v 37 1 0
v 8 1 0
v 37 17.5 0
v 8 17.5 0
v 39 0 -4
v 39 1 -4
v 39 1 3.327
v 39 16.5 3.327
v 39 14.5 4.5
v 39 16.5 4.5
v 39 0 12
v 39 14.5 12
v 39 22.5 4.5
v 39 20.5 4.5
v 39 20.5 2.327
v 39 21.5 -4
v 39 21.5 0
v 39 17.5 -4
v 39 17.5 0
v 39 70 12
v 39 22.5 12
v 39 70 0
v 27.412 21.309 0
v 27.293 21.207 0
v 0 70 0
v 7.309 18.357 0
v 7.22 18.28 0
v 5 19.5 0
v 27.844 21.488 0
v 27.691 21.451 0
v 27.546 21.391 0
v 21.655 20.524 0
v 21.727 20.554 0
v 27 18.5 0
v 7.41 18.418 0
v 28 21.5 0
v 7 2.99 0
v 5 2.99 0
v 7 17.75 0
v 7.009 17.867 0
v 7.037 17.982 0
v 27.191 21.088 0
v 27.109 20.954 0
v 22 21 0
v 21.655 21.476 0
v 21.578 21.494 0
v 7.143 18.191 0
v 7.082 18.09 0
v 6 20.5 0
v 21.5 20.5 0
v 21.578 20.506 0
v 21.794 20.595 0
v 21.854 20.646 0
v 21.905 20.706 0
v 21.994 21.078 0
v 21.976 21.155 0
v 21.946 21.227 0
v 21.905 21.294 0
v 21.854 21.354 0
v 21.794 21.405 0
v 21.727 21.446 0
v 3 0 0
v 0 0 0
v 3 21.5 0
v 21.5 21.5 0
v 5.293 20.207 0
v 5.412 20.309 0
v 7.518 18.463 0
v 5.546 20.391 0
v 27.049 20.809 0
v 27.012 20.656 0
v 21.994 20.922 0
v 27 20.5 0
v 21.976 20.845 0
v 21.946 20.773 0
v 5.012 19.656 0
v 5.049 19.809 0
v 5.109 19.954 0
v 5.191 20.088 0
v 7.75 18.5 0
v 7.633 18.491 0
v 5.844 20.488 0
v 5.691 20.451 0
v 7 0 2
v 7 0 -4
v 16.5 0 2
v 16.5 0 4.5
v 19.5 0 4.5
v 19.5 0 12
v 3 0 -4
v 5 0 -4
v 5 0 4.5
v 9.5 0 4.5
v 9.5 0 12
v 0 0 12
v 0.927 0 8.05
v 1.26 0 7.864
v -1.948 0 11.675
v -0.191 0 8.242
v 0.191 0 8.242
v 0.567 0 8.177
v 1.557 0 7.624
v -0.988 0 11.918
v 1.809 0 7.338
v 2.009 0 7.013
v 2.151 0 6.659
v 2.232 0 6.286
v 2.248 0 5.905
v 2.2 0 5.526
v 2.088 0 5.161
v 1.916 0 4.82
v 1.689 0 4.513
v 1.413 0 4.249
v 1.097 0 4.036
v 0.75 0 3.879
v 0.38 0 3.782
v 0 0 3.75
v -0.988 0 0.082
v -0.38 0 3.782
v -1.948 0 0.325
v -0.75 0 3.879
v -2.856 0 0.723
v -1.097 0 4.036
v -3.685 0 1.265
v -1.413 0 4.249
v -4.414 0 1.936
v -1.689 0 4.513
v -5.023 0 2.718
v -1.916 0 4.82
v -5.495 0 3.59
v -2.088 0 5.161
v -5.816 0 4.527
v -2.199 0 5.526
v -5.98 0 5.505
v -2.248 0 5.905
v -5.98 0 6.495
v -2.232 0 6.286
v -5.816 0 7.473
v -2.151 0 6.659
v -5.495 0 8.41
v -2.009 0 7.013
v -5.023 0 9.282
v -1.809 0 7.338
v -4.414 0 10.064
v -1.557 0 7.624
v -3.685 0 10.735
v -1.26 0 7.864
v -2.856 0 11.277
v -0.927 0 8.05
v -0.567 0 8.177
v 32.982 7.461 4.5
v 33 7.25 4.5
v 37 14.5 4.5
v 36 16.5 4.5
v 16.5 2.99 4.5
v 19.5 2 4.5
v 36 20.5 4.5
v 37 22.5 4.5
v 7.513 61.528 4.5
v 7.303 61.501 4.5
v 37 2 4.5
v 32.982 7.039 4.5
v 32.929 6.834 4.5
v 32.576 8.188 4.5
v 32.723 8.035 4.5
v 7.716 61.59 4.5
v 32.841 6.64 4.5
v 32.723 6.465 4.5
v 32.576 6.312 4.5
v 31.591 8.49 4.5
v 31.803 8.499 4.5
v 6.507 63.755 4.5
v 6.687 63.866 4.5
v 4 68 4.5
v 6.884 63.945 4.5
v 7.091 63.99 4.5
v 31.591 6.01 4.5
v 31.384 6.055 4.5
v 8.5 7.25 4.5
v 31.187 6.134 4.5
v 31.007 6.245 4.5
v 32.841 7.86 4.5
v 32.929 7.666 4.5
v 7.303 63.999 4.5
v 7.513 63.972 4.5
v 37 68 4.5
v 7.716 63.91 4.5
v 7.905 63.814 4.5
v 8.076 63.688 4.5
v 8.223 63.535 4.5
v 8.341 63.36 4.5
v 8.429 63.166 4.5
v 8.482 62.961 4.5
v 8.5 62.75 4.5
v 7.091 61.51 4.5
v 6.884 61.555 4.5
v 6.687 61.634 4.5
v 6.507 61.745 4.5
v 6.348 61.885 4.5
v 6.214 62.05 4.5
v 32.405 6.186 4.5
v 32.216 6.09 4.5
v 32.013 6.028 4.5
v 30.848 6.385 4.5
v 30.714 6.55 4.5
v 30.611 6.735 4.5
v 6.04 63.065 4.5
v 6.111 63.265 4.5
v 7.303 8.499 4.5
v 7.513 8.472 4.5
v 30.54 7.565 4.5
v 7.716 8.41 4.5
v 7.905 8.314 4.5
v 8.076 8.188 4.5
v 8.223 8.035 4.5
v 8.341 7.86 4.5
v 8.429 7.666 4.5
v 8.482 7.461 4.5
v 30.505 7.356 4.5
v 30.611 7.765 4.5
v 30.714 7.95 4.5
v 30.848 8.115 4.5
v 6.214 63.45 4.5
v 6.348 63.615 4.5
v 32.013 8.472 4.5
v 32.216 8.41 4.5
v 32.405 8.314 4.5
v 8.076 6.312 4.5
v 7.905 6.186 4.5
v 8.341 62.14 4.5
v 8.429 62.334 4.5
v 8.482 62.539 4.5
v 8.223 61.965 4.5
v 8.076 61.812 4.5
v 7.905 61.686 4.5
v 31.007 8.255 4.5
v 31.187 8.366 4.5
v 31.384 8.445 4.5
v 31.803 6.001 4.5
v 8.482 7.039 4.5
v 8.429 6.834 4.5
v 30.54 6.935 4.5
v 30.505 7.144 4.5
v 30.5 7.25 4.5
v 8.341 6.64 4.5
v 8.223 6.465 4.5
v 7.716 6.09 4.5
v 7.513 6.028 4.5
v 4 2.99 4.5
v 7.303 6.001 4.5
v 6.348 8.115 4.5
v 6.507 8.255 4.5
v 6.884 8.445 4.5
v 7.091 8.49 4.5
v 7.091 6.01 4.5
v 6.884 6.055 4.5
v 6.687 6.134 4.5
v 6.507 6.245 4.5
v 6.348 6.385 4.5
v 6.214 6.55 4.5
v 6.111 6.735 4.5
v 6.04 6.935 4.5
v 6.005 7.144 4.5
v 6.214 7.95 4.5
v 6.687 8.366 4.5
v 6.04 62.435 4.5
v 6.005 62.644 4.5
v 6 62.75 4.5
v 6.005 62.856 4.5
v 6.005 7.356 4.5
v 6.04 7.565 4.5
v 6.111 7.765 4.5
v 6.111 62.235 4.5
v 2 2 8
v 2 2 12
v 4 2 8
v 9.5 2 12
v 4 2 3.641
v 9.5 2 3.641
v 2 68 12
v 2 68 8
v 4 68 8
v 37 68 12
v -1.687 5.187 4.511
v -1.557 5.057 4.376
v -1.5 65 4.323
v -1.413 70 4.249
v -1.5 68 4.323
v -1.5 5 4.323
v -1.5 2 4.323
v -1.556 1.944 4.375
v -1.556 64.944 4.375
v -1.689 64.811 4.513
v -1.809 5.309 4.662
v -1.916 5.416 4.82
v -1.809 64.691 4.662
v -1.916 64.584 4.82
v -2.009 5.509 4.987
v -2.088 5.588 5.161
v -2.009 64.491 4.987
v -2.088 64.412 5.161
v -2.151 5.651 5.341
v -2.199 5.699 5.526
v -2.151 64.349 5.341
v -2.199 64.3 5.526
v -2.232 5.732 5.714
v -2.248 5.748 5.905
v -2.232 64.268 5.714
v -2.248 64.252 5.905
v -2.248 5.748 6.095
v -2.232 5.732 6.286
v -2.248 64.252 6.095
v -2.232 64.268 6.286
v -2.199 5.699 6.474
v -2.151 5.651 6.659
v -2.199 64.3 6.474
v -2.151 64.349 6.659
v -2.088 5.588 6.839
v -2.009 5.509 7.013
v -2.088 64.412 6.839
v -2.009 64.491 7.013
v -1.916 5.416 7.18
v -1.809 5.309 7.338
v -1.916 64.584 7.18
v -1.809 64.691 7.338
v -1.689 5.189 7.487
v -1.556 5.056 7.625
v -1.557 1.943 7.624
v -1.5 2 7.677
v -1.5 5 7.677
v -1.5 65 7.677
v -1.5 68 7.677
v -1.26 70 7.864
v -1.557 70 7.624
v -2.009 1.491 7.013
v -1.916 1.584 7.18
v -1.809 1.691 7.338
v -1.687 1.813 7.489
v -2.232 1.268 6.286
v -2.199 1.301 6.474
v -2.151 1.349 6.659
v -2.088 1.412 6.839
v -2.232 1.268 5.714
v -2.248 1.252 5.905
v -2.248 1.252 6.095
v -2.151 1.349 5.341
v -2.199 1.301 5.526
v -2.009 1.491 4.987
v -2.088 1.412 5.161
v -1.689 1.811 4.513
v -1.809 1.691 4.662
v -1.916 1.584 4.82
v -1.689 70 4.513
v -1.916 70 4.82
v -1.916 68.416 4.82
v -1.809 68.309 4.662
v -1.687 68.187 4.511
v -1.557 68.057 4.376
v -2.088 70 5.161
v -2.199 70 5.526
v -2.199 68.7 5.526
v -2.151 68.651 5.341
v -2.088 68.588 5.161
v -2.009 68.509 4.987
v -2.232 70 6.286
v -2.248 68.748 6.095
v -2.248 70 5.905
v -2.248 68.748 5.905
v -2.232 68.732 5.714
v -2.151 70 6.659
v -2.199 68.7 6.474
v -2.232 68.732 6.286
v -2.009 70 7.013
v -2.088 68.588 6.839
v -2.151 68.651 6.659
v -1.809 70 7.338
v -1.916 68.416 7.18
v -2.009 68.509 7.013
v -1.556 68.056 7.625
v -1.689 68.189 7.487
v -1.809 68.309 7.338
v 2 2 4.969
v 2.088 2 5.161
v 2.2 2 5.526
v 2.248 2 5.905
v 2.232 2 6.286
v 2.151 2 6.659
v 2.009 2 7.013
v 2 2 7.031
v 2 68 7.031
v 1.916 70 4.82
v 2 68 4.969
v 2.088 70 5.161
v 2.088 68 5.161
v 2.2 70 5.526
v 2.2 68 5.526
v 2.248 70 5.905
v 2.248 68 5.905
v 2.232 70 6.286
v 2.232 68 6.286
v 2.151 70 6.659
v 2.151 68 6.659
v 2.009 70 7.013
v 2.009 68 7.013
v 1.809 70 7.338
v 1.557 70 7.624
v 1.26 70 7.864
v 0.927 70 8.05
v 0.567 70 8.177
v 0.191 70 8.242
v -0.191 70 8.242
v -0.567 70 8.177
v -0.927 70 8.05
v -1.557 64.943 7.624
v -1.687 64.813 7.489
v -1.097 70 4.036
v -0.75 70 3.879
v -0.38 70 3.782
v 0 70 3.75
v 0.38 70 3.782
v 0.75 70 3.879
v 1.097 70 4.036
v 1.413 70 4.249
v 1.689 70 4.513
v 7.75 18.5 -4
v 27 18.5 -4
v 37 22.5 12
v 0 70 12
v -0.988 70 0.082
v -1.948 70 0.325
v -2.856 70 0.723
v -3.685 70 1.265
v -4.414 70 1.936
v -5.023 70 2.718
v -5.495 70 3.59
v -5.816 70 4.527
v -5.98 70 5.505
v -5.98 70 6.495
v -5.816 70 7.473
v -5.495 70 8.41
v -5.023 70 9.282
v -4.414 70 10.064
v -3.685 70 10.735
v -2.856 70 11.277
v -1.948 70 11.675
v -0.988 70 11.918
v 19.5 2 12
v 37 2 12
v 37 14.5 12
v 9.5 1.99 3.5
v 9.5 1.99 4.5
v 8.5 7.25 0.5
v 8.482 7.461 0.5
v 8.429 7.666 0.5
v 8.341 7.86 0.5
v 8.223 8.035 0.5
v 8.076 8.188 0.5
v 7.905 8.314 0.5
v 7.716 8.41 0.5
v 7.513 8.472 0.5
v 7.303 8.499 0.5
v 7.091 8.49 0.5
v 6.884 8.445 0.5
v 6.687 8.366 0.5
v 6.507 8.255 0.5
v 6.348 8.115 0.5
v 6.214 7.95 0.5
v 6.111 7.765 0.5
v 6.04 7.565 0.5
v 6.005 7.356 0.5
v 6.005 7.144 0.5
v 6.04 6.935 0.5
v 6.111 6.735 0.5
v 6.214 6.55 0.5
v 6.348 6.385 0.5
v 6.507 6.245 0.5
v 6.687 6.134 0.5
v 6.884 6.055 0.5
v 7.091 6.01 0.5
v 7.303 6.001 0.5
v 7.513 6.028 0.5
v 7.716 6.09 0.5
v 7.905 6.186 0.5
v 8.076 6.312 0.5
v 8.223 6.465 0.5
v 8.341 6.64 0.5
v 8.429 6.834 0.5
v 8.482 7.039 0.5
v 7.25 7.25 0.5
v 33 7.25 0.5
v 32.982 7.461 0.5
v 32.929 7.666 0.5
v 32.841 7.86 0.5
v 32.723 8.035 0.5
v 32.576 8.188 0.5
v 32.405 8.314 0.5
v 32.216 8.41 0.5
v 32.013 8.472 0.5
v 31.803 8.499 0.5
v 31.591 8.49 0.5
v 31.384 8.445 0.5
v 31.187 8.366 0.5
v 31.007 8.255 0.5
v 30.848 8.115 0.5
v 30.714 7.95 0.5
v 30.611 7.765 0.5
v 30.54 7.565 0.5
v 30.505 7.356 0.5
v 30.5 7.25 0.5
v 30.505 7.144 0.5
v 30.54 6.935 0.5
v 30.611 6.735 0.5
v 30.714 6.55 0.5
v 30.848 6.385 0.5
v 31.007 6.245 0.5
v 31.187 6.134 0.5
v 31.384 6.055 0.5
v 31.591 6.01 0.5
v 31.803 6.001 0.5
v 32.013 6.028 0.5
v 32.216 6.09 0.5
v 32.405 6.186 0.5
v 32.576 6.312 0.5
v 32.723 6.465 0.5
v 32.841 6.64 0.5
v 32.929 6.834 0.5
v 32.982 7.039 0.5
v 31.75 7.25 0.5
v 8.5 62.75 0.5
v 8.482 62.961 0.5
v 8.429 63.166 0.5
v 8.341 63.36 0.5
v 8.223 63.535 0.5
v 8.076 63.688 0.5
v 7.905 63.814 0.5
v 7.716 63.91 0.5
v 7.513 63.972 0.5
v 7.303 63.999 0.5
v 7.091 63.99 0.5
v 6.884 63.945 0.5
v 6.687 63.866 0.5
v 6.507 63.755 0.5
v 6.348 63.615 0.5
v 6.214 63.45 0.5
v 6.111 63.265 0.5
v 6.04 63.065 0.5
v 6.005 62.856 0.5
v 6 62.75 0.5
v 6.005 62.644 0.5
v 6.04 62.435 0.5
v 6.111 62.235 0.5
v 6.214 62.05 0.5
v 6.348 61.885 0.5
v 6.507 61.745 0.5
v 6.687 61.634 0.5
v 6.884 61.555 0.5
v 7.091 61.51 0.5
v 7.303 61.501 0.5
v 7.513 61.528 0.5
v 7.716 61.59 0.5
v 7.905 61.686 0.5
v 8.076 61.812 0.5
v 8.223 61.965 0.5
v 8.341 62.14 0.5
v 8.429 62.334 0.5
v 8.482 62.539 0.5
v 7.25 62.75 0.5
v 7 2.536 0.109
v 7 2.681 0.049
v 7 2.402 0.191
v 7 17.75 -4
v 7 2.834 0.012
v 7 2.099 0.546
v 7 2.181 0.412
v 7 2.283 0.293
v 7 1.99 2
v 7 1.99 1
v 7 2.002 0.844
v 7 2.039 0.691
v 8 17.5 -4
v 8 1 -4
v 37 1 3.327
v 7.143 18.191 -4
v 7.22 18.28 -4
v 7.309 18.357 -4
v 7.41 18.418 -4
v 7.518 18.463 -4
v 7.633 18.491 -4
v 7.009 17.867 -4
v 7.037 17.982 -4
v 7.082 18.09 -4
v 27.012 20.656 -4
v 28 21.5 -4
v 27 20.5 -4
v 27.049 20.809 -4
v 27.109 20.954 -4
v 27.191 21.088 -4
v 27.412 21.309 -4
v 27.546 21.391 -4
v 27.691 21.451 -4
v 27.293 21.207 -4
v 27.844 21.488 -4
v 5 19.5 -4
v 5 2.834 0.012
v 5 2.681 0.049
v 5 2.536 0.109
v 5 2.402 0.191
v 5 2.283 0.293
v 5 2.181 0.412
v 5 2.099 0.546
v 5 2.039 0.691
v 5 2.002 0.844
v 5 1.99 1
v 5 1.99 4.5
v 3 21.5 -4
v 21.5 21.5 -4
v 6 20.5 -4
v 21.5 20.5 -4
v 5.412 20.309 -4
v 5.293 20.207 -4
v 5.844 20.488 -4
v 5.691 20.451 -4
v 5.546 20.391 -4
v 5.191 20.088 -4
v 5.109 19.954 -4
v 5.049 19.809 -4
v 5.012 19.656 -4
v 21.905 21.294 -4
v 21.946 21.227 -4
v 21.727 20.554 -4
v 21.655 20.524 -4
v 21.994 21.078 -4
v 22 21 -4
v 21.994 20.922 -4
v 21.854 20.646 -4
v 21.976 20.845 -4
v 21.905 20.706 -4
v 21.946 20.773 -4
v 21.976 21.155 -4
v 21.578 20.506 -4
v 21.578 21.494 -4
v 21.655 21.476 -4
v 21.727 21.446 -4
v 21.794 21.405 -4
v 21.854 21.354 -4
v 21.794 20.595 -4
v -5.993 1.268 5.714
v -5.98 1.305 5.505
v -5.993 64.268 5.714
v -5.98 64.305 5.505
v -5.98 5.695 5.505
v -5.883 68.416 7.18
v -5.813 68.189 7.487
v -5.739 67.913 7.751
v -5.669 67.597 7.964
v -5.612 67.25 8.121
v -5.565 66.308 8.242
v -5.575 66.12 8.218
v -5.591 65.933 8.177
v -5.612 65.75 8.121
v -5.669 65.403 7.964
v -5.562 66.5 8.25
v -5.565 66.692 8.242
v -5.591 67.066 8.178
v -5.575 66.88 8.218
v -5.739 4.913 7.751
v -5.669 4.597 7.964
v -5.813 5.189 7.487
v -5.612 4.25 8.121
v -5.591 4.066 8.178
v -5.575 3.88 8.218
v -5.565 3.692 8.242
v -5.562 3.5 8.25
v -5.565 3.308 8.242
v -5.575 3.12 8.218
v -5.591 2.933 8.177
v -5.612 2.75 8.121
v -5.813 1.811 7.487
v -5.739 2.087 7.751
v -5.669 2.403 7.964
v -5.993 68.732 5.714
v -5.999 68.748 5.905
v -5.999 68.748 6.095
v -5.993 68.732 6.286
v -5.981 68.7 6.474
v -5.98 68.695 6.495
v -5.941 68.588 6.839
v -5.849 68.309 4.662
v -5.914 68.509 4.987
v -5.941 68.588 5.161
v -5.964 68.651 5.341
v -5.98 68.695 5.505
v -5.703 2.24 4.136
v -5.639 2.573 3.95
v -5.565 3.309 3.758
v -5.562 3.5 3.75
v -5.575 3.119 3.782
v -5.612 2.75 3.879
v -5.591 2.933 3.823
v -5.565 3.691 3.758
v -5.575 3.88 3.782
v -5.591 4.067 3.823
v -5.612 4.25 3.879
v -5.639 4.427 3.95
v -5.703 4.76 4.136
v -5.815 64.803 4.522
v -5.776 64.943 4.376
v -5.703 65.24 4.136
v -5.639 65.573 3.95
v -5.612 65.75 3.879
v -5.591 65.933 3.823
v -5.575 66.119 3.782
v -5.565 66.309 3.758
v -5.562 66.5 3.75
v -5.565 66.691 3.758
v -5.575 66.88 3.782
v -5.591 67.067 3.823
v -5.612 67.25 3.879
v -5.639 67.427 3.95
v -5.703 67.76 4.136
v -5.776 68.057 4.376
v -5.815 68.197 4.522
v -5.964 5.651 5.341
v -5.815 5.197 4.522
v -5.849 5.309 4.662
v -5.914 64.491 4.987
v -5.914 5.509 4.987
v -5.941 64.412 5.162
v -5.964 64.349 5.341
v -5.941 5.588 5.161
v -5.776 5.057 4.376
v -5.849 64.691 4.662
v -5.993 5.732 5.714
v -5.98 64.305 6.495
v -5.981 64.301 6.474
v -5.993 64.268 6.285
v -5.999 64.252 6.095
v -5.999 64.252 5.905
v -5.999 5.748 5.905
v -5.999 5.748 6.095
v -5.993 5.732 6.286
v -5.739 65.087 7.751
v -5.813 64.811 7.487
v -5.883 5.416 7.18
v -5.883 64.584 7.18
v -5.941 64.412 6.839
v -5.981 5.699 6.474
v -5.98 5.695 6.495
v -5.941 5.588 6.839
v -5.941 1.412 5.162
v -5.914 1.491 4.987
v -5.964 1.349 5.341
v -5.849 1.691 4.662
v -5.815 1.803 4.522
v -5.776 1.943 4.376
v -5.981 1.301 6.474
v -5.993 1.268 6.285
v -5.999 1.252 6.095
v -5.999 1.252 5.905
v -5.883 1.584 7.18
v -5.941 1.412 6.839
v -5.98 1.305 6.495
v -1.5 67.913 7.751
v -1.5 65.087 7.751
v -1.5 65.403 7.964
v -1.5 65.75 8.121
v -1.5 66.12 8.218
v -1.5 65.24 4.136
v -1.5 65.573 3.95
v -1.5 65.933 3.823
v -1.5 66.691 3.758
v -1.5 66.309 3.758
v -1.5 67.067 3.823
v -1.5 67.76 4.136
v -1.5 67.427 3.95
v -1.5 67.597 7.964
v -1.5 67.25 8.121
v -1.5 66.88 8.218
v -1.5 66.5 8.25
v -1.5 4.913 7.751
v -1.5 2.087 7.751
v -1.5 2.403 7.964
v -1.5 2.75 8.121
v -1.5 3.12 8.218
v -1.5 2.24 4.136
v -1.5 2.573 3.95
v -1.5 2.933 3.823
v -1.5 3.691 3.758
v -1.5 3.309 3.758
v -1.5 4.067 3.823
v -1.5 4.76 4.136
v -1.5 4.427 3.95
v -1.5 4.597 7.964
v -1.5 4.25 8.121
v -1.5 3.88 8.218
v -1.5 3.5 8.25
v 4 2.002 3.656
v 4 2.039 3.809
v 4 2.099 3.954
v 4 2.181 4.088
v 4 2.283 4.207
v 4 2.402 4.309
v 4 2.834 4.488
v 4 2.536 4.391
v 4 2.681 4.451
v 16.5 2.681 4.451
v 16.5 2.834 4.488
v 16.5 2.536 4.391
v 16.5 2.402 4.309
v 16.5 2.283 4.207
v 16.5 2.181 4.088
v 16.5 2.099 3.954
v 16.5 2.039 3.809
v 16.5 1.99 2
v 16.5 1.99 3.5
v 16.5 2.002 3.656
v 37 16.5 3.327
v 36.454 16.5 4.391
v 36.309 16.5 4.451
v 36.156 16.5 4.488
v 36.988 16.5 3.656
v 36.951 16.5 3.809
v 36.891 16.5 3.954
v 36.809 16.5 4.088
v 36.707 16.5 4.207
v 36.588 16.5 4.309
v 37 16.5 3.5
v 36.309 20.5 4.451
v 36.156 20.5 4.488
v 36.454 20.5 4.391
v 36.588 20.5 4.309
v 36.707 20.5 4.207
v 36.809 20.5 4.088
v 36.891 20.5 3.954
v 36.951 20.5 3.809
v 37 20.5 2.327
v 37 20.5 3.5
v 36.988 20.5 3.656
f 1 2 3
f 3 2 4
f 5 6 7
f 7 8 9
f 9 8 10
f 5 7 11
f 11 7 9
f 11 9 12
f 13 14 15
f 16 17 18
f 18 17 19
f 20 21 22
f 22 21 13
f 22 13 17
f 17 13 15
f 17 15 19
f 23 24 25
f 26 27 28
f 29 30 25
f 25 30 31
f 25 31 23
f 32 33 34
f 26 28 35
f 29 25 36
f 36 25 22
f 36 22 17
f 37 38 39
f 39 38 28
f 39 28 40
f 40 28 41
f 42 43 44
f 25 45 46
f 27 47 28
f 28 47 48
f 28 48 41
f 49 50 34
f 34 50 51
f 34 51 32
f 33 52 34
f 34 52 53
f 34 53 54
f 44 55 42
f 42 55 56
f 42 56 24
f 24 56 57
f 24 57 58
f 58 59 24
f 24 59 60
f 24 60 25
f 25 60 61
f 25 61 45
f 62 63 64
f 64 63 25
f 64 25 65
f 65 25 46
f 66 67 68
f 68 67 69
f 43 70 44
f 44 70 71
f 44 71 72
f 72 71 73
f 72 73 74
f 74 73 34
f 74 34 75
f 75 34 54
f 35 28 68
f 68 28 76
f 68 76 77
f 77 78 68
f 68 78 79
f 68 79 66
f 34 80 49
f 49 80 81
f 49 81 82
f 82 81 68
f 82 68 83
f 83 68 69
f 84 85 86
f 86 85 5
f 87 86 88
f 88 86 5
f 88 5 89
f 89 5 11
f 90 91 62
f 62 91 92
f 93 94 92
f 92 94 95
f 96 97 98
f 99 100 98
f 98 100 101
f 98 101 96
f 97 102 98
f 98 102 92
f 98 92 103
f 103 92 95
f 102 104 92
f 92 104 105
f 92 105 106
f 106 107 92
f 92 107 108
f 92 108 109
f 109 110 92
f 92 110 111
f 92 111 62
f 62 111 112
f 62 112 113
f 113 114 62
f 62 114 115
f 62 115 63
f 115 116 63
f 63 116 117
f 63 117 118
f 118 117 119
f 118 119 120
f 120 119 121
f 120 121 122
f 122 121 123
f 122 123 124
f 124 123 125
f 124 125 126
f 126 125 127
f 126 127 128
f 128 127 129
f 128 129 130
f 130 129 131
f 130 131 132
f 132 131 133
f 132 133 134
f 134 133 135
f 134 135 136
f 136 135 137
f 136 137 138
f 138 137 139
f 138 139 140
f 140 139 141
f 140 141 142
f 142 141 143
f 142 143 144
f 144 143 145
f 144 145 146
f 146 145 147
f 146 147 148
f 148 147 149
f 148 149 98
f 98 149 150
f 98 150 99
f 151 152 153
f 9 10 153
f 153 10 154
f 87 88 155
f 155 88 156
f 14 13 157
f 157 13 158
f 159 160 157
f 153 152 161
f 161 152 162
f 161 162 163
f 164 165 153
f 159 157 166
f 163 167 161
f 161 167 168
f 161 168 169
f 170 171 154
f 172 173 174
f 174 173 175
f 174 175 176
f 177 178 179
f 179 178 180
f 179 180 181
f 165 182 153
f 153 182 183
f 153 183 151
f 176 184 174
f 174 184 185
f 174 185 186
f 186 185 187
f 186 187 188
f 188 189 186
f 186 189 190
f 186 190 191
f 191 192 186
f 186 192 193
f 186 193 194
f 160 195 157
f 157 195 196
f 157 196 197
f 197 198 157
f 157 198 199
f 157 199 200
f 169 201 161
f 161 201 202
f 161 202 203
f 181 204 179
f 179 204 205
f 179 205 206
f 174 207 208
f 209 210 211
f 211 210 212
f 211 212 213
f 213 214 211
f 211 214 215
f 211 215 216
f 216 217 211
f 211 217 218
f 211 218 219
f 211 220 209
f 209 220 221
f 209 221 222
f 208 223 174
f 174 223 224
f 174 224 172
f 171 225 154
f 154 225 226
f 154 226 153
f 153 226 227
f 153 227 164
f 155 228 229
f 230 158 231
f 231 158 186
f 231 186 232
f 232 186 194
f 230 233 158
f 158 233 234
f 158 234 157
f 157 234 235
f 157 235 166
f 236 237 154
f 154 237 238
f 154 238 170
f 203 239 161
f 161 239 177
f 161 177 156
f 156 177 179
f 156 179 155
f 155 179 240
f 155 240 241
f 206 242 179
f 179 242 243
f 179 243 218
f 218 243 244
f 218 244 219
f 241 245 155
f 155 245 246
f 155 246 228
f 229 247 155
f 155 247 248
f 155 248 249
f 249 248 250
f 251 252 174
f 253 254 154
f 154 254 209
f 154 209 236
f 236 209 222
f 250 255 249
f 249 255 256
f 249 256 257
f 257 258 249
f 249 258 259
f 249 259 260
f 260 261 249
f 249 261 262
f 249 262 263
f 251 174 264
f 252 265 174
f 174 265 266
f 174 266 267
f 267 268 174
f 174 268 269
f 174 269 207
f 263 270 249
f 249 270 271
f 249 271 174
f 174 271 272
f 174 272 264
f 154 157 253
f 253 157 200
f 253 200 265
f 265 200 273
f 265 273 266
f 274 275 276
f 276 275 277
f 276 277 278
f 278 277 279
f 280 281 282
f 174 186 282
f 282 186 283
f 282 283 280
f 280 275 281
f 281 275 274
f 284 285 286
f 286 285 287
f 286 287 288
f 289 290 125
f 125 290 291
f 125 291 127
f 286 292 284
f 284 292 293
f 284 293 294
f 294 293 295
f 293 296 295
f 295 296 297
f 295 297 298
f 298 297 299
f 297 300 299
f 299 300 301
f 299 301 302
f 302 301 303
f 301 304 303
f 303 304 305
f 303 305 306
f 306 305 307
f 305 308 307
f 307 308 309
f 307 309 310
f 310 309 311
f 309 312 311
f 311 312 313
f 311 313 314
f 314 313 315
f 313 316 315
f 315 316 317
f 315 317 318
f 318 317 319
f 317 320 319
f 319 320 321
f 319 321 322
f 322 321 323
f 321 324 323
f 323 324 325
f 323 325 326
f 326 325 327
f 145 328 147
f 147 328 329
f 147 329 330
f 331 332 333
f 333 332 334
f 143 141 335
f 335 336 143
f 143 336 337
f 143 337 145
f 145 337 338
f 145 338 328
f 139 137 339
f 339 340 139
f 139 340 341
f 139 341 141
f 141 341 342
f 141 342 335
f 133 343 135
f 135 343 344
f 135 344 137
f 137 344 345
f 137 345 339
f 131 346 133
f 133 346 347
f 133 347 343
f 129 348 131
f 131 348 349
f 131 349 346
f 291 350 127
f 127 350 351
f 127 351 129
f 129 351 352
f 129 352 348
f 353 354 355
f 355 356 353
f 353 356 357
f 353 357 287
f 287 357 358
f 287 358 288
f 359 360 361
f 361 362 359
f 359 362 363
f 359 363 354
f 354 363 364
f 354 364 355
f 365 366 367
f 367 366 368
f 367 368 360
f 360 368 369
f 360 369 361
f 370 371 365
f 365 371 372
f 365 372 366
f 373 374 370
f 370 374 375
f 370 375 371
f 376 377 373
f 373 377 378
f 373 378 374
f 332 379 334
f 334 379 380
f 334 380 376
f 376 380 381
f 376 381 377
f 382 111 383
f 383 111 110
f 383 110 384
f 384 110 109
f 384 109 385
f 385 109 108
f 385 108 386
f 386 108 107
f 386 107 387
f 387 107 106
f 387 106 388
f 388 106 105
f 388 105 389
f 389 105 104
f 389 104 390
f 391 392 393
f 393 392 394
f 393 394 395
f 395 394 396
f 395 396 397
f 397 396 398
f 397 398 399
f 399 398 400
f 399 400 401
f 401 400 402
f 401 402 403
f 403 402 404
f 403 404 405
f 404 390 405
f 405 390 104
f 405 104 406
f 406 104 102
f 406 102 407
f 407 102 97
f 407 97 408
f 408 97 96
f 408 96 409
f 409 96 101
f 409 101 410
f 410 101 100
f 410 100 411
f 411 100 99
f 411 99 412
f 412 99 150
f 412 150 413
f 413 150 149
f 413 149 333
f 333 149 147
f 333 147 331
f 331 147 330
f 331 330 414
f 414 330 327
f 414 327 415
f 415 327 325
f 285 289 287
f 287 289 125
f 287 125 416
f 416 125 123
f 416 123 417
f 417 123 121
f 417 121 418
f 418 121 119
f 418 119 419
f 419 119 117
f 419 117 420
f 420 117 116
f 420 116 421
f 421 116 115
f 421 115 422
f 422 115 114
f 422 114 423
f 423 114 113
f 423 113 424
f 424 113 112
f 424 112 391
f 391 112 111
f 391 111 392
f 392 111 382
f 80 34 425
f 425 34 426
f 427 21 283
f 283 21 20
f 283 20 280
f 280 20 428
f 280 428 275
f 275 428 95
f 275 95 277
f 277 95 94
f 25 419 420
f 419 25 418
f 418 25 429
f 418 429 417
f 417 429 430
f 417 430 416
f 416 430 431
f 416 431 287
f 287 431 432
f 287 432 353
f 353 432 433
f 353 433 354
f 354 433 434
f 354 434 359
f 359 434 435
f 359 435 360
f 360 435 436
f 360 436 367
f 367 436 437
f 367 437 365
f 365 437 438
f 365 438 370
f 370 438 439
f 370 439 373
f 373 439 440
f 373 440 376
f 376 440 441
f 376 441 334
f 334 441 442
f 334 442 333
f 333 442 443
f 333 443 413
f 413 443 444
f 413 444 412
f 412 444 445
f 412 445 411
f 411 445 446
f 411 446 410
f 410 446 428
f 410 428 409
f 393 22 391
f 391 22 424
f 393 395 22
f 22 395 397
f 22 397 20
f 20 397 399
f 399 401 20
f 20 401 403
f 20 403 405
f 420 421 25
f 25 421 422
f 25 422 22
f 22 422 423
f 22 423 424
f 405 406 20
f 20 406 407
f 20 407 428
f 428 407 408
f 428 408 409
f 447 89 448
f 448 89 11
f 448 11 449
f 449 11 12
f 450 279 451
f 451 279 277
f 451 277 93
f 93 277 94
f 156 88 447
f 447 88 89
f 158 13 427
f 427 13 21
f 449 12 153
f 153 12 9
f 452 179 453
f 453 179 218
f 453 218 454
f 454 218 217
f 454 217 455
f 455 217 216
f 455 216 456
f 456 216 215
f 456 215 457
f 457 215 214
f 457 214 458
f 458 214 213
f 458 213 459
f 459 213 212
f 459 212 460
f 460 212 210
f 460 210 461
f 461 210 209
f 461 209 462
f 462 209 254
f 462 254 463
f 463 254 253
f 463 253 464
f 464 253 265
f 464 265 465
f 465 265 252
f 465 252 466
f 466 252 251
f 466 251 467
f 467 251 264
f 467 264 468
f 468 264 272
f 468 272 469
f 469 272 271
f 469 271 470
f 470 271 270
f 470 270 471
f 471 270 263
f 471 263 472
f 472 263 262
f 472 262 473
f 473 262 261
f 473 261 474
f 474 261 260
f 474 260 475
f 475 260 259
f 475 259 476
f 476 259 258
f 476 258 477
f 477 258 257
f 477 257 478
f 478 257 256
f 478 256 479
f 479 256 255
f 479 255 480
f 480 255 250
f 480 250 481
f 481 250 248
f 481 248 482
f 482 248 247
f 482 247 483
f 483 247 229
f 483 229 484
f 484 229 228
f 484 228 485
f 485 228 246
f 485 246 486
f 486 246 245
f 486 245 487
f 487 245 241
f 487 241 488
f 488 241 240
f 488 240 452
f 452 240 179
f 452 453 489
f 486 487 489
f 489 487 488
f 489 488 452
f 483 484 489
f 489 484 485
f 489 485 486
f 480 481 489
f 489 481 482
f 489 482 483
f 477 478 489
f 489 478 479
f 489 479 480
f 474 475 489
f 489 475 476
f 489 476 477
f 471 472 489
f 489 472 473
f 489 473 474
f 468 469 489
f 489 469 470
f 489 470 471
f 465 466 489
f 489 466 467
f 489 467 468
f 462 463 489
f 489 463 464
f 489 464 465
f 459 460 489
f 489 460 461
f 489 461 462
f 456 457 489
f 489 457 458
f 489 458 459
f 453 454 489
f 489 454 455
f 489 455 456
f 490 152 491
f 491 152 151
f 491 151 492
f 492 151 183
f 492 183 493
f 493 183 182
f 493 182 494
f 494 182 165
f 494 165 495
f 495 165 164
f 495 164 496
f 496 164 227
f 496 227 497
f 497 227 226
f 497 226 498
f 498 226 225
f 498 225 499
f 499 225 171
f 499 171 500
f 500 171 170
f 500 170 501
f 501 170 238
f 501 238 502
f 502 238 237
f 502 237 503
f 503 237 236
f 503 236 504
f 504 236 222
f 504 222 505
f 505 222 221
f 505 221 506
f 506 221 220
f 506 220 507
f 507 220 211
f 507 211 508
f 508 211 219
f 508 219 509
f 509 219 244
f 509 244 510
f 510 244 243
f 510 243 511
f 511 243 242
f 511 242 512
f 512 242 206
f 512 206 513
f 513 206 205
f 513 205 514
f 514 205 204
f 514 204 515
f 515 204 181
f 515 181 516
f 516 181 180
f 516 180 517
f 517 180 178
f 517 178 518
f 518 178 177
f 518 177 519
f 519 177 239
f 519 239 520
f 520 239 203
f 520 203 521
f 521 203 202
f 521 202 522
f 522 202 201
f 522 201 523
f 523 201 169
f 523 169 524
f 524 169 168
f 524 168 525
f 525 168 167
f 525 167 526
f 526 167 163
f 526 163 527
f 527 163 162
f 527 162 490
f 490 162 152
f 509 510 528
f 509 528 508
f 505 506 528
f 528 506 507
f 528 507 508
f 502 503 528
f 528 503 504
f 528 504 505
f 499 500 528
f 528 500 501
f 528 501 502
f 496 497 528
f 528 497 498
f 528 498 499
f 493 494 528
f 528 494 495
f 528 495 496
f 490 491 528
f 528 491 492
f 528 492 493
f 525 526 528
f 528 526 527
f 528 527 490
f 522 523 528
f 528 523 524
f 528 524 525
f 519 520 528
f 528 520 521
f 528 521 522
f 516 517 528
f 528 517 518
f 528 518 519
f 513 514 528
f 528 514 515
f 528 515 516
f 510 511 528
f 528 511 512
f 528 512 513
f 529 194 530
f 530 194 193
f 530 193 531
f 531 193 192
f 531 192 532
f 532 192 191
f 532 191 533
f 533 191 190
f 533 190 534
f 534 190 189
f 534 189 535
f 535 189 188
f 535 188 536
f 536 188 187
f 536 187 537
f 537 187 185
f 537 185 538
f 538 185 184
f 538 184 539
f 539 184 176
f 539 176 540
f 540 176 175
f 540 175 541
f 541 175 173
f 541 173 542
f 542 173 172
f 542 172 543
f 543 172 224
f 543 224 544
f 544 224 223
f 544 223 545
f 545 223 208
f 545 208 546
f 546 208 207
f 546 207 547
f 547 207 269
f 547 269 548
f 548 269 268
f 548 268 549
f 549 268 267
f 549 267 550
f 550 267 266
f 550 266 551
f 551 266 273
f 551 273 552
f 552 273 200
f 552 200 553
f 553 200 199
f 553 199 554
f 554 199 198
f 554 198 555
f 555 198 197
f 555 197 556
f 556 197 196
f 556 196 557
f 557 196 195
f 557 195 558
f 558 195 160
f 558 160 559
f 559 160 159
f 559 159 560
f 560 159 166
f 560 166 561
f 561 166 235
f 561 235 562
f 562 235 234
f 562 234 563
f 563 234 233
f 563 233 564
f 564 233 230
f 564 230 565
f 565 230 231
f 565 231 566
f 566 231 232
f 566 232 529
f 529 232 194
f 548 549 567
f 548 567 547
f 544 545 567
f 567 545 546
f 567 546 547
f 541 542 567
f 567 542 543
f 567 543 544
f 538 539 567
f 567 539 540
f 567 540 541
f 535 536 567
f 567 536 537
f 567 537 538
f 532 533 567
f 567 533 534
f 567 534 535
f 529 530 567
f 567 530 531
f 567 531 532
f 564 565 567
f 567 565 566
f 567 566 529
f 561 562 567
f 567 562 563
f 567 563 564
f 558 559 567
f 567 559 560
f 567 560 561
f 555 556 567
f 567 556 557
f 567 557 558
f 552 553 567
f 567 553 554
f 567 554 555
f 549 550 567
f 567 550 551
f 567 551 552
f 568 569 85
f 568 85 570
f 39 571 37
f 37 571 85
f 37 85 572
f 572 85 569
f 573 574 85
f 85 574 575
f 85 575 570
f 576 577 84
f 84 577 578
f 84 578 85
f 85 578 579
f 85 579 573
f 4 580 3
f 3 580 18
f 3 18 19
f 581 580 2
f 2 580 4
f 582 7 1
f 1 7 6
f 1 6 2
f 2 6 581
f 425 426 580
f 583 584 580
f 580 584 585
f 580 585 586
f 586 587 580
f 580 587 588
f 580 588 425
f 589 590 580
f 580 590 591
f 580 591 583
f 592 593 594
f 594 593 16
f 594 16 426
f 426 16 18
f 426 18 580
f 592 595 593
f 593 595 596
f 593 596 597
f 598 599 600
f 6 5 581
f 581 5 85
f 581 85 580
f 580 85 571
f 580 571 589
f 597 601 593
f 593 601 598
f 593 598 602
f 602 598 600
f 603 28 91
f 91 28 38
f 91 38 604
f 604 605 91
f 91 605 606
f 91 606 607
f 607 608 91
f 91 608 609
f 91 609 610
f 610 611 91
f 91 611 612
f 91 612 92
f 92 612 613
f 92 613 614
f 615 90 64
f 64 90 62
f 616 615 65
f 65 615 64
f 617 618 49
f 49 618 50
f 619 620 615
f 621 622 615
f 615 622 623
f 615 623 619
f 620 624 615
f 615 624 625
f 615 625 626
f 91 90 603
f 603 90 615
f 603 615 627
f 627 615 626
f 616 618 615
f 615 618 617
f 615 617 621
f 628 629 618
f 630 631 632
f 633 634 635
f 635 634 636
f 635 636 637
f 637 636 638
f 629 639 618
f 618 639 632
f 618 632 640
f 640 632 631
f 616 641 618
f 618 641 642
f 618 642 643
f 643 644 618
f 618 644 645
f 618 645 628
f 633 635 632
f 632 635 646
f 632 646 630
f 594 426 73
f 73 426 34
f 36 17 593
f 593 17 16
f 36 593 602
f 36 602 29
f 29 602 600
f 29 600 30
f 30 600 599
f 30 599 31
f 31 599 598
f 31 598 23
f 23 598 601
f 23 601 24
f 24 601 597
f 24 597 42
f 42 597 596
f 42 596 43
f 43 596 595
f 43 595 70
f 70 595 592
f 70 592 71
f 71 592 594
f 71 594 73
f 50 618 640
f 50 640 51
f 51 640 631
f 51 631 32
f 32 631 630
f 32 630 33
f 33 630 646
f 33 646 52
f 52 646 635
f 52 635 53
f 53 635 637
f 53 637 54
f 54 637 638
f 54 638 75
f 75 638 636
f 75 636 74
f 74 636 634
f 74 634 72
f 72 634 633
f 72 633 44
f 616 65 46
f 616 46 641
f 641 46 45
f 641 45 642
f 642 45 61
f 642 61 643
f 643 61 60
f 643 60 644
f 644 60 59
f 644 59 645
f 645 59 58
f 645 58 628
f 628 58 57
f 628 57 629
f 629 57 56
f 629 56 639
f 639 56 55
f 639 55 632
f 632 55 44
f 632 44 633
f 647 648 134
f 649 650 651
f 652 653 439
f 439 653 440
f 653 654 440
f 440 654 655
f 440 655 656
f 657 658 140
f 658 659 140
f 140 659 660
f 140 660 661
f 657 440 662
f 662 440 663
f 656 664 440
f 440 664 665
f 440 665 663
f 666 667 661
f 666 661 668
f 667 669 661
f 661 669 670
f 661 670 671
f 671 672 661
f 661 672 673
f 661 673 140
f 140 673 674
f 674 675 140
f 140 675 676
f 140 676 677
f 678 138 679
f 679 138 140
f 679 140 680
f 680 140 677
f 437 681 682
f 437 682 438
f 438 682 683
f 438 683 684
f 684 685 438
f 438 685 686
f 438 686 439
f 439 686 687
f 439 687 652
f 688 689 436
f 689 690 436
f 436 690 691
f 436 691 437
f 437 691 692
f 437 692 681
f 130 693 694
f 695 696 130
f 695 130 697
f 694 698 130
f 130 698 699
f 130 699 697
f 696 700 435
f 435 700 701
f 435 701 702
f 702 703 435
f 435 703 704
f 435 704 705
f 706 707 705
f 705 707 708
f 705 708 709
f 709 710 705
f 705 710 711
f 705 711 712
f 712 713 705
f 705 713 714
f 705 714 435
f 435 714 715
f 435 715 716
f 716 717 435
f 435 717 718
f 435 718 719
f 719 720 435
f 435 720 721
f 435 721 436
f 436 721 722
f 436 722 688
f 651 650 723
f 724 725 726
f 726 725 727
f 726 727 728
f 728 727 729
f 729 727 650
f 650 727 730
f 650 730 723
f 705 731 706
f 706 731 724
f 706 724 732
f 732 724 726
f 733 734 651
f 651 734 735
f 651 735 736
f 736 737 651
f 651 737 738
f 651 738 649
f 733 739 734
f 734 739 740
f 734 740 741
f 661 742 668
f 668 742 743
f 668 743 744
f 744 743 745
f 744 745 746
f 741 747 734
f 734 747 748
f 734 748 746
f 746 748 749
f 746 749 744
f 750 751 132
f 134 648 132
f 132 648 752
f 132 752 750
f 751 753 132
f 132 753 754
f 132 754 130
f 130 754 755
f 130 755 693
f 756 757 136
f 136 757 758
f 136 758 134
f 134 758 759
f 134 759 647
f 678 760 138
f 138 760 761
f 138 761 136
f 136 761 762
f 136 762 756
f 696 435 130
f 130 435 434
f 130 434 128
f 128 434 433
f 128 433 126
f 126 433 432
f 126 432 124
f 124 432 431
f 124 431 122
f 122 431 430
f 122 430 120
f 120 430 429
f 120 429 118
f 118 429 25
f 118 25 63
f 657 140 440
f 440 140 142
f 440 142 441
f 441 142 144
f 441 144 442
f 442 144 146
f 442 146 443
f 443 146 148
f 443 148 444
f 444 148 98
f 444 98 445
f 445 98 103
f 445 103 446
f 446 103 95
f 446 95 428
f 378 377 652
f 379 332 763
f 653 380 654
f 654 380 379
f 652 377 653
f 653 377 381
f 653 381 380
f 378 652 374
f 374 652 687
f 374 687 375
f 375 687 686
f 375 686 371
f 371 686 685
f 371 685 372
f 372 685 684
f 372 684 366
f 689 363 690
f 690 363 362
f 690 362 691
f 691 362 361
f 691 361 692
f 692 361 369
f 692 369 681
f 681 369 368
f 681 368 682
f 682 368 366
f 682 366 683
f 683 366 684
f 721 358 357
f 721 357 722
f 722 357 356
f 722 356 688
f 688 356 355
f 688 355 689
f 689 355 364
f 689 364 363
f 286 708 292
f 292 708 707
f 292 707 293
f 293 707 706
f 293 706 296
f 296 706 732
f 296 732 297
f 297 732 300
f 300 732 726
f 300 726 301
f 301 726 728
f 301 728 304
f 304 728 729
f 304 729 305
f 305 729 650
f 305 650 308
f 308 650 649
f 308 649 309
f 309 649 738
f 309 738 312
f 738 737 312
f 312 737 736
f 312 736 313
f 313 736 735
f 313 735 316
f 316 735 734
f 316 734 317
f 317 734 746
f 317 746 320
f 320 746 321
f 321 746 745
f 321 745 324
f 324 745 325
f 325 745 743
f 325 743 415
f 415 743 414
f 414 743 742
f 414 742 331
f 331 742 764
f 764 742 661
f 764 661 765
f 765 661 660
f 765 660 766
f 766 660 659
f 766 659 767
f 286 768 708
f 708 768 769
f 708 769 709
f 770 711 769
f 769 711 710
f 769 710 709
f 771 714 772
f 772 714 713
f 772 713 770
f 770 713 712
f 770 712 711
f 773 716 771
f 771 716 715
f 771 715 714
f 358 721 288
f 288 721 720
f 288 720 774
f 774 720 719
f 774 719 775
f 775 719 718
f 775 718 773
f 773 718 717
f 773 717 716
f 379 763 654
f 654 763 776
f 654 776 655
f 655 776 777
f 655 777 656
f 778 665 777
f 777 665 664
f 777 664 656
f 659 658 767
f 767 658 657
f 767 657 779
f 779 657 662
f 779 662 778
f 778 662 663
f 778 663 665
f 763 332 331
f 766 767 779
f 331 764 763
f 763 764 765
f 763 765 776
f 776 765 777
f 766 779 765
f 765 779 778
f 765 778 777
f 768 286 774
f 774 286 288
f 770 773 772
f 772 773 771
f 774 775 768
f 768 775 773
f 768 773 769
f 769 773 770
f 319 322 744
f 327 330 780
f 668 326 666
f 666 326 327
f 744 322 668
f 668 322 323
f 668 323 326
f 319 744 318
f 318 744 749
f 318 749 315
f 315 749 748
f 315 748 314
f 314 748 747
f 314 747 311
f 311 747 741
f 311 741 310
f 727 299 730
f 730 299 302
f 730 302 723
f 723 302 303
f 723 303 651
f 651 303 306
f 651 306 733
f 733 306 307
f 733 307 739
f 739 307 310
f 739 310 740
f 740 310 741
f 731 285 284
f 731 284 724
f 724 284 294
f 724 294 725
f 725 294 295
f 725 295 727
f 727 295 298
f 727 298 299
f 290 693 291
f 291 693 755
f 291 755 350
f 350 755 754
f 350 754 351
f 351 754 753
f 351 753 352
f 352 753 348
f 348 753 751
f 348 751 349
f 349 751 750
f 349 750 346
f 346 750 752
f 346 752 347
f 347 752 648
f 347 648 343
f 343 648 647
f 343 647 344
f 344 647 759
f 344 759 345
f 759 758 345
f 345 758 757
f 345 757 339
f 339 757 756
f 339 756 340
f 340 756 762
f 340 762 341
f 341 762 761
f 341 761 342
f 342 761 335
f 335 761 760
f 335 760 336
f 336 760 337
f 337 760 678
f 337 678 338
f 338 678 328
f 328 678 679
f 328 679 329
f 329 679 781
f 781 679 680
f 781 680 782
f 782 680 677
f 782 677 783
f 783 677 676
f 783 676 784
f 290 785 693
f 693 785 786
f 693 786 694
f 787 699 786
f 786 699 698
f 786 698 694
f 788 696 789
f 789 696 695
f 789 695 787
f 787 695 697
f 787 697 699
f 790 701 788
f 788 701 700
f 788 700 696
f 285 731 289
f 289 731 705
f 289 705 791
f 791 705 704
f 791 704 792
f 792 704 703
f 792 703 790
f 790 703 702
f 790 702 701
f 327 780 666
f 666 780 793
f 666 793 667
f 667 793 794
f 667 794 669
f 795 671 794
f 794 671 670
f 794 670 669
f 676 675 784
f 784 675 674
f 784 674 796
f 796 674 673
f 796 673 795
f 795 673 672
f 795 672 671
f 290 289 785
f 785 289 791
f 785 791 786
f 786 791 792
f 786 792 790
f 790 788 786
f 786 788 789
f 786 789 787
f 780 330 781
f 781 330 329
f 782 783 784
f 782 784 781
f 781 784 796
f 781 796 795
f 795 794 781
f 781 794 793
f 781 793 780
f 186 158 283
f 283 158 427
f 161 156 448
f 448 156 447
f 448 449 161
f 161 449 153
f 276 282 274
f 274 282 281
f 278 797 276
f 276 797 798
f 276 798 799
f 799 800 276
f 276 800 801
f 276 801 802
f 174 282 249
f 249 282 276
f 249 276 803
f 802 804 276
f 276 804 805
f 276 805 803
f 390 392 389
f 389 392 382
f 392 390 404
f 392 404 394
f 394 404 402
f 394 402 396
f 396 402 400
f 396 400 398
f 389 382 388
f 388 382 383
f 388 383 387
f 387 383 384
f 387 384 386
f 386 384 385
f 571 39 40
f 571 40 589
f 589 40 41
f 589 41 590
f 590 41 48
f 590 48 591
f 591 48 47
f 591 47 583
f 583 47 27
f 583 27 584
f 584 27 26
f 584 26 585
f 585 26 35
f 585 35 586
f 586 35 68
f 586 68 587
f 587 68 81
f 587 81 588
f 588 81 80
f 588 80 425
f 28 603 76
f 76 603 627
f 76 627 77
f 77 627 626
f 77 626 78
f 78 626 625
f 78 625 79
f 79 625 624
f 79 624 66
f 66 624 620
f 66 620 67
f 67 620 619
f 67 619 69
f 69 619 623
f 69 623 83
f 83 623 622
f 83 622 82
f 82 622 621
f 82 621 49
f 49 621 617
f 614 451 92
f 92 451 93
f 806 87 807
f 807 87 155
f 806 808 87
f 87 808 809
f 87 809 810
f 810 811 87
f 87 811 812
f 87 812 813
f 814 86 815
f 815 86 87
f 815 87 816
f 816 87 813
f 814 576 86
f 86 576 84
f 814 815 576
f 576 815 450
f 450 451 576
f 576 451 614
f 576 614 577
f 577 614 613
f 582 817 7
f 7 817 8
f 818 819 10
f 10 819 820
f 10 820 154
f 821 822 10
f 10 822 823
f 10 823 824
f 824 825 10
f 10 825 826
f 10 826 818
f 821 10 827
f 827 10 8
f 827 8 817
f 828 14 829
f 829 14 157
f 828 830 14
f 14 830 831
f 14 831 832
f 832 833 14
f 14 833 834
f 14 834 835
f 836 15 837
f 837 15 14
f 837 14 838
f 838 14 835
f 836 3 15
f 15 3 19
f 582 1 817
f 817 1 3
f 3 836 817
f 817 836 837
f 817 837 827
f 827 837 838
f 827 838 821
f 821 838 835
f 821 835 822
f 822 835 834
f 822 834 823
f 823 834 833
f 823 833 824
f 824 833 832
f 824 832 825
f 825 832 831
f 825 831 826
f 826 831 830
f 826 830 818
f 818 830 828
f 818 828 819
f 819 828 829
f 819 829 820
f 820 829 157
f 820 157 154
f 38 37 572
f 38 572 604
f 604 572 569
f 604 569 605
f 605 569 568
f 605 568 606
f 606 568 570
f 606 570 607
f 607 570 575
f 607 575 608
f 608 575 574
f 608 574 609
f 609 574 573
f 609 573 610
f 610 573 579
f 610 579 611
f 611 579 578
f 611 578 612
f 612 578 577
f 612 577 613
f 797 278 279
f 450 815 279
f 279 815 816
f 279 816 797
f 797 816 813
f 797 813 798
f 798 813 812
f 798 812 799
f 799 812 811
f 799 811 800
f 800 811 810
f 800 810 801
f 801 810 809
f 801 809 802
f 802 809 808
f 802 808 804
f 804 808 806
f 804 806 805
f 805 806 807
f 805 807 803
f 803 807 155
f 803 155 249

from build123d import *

# Parameters (mm, degrees)
SKETCH1_W                = 39
SKETCH1_H                = 70
BASE_DEPTH               = 4.5
SKETCH2_W                = 4
SKETCH2_H                = 62
WALLS_DEPTH              = 7.5
SKETCH3_W                = 10
SKETCH3_H                = 7.5
PWR_CONNECTOR_HOLE_DEPTH = 4
SKETCH4_W                = 7.5
SKETCH4_H                = 8
GPS_CONNECTOR_HOLE_DEPTH = 4
SKETCH5_R                = 1.25
MOUNTING_HOLES_DEPTH     = 4
GPS_MOUNT_DEPTH          = 4
SKETCH11_W               = 17
SKETCH11_H               = 1
SKETCH11_W_2             = 12
SKETCH11_H_2             = 3
PWR_CABLE_HOLDER1_DEPTH  = 4
PWR_FILLET2_R            = 1
PWR_FILLET3_R            = 0.5
SKETCH15_R               = 6
BALLON_MOUNT_DEPTH       = 70
SKETCH16_R               = 2.25
BALLOON_MOUNT_HOLE_DEPTH = 70
SKETCH21_R               = 2.25
SAFETY_MOUNT_DEPTH       = 4.5
SKETCH22_W               = 35
SKETCH22_H               = 66
LID_HOLE_DEPTH           = 7.5
SKETCH25_W               = 3.5
SKETCH25_H               = 66
CORRECTION_DEPTH         = 2
FILLET4_R                = 0.75
FILLET5_R                = 1
SKETCH12_W               = 7
SKETCH12_H               = 2.5
SKETCH12_W_2             = 2
SKETCH12_H_2             = 2
CUT_EXTRUDE2_DEPTH       = 1.99
SKETCH13_W               = 2.326586719
SKETCH13_H               = 10
CUT_EXTRUDE3_DEPTH       = 2
FILLET6_R                = 1
FILLET7_R                = 1
FILLET8_START            = 4
FILLET8_DEPTH            = 12.5
FILLET8_START_2          = 9.5
FILLET8_2_DEPTH          = 7


with BuildPart() as part:
    # Sketch1 → Base (new body)
    with BuildSketch(Plane.XY):
        with Locations((19.5, 35)):
            Rectangle(SKETCH1_W, SKETCH1_H)
    extrude(amount=BASE_DEPTH)

    # Sketch2 → Walls (add)
    with BuildSketch(Plane.XY.offset(4.5)):
        Polygon((39, 66), (39, 70), (0, 70), (0, 66), (4, 66), (35, 66), align=None)
        with Locations((37, 35)):
            Rectangle(SKETCH2_W, SKETCH2_H)
        Polygon((4, 66), (0, 66), (0, 0), (4, 0), (4, 4), align=None)
        Polygon((39, 0), (39, 4), (35, 4), (4, 4), (4, 0), align=None)
    extrude(amount=WALLS_DEPTH)

    # Sketch3 → PWR connector hole (cut)
    with BuildSketch(Plane(origin=(0, 4, 0), x_dir=(1, 0, 0), z_dir=(0, 1, 0))):
        with Locations((14.5, -8.25)):
            Rectangle(SKETCH3_W, SKETCH3_H)
    extrude(amount=-PWR_CONNECTOR_HOLE_DEPTH, mode=Mode.SUBTRACT)

    # Sketch4 → GPS connector hole (cut)
    with BuildSketch(Plane.ZY.offset(-35)):
        with Locations((8.25, 18.5)):
            Rectangle(SKETCH4_W, SKETCH4_H)
    extrude(amount=-GPS_CONNECTOR_HOLE_DEPTH, mode=Mode.SUBTRACT)

    # Sketch5 → Mounting holes (cut)
    with BuildSketch(Plane.XY.offset(4.5)):
        with Locations((7.25, 7.25)):
            Circle(SKETCH5_R)
        with Locations(Location((31.75, 7.25, 0), (0, 0, 180))):
            Circle(SKETCH5_R)
        with Locations(Location((7.25, 62.75, 0), (0, 0, 180))):
            Circle(SKETCH5_R)
    extrude(amount=-MOUNTING_HOLES_DEPTH, mode=Mode.SUBTRACT)

    # Sketch7 → GPS mount (add)
    with BuildSketch(Plane(origin=(0, 0, 0), x_dir=(-1, 0, 0), z_dir=(0, 0, -1))):
        Polygon((-39, 1), (-39, 0), (-7, 0), (-7, 18.5), (-39, 18.5), (-39, 17.5), (-8, 17.5), (-8, 1), align=None)
    extrude(amount=GPS_MOUNT_DEPTH)

    # Sketch11 → PWR cable holder1 (add)
    with BuildSketch(Plane(origin=(0, 0, 0), x_dir=(-1, 0, 0), z_dir=(0, 0, -1))):
        Polygon((-5, 0), (-3, 0), (-3, 21.5), (-5, 21.5), (-5, 20.5), align=None)
        with Locations((-13.5, 21)):
            Rectangle(SKETCH11_W, SKETCH11_H)
        with Locations((-33, 20)):
            Rectangle(SKETCH11_W_2, SKETCH11_H_2)
    extrude(amount=PWR_CABLE_HOLDER1_DEPTH)

    # PWR fillet2
    pwr_fillet2_edges = [part.edges().sort_by_distance(p)[0] for p in [
        (27, 21.5, -2),
    ]]
    fillet(pwr_fillet2_edges, radius=PWR_FILLET2_R)

    # PWR fillet3
    pwr_fillet3_edges = [part.edges().sort_by_distance(p)[0] for p in [
        (22, 21.5, -2),
        (22, 20.5, -2),
    ]]
    fillet(pwr_fillet3_edges, radius=PWR_FILLET3_R - 0.0001)  # a hair under: the kernel refuses the full size

    # Sketch15 → Ballon mount (add)
    with BuildSketch(Plane.XZ):
        with Locations((0, 6)):
            Circle(SKETCH15_R)
    extrude(amount=-BALLON_MOUNT_DEPTH)

    # Sketch16 → Balloon mount hole (cut)
    with BuildSketch(Plane.XZ):
        with Locations(Location((0, 6, 0), (0, 0, 270))):
            Circle(SKETCH16_R)
    extrude(amount=-BALLOON_MOUNT_HOLE_DEPTH, mode=Mode.SUBTRACT)

    # Sketch21 → Safety mount (cut)
    with BuildSketch(Plane.ZY.offset(6)):
        with Locations((6, 3.5)):
            Circle(SKETCH21_R)
        with Locations((6, 66.5)):
            Circle(SKETCH21_R)
    extrude(amount=-SAFETY_MOUNT_DEPTH, mode=Mode.SUBTRACT)

    # Sketch22 → Lid hole (cut)
    with BuildSketch(Plane.XY.offset(12)):
        with Locations((19.5, 35)):
            Rectangle(SKETCH22_W, SKETCH22_H)
    extrude(amount=-LID_HOLE_DEPTH, mode=Mode.SUBTRACT)

    # Sketch25 → Correction (add)
    with BuildSketch(Plane(origin=(2, 0, 0), x_dir=(0, 0, -1), z_dir=(1, 0, 0))):
        with Locations((-6.25, 35)):
            Rectangle(SKETCH25_W, SKETCH25_H)
    extrude(amount=CORRECTION_DEPTH)

    # Fillet4
    fillet4_edges = [part.edges().sort_by_distance(p)[0] for p in [
        (7, 18.5, -2),
    ]]
    fillet(fillet4_edges, radius=FILLET4_R)

    # Fillet5
    fillet5_edges = [part.edges().sort_by_distance(p)[0] for p in [
        (5, 20.5, -2),
    ]]
    fillet(fillet5_edges, radius=FILLET5_R)

    # Sketch12 → Cut-Extrude2 (cut)
    with BuildSketch(Plane.XZ):
        with Locations((13, 3.25)):
            Rectangle(SKETCH12_W, SKETCH12_H)
        Polygon((5, 4.5), (5, 2), (7, 2), (9.5, 2), (9.5, 4.5), align=None)
        with Locations((6, 1)):
            Rectangle(SKETCH12_W_2, SKETCH12_H_2)
    extrude(amount=-CUT_EXTRUDE2_DEPTH, mode=Mode.SUBTRACT)

    # Sketch13 → Cut-Extrude3 (cut)
    with BuildSketch(Plane(origin=(39, 0, 0), x_dir=(0, 0, -1), z_dir=(1, 0, 0))):
        Polygon((-2.326586719, 20.5), (-4.5, 20.5), (-4.5, 16.5), (-3.326586719, 16.5), (-2.326586719, 16.5), (-2.326586719, 17.5), align=None)
        Polygon((0, 17.5), (-2.326586719, 20.5), (-2.326586719, 17.5), align=None)
        Polygon((0, 17.5), (-2.326586719, 17.5), (-2.326586719, 16.5), (-2.326586719, 11), (0, 11), align=None)
        Polygon((-2.326586719, 16.5), (-3.326586719, 16.5), (-3.326586719, 1), (-2.326586719, 1), (-2.326586719, 11), align=None)
        with Locations((-1.16329336, 6)):
            Rectangle(SKETCH13_W, SKETCH13_H)
    extrude(amount=-CUT_EXTRUDE3_DEPTH, mode=Mode.SUBTRACT)

    # Fillet6
    fillet6_edges = [part.edges().sort_by_distance(p)[0] for p in [
        (37, 18.5, 4.5),
    ]]
    fillet(fillet6_edges, radius=FILLET6_R)

    # Fillet7
    fillet7_edges = [part.edges().sort_by_distance(p)[0] for p in [
        (6, 1.99, 0),
    ]]
    fillet(fillet7_edges, radius=FILLET7_R)

    # Fillet8: read off the stored shape, not the designer's step
    # Fillet8 outline → Fillet8 (cut)
    with BuildSketch(Plane.YZ.offset(FILLET8_START)):
        with BuildLine():
            Line((2.99, 4.5), (2, 4.5))
            Line((2, 4.5), (2, 3.64106736))
            ThreePointArc((2, 3.64106736), (2.334663201, 4.255336799), (2.99, 4.5))
        make_face()
    extrude(amount=FILLET8_DEPTH, mode=Mode.SUBTRACT)

    # Fillet8 2 outline → Fillet8 2 (cut)
    with BuildSketch(Plane.YZ.offset(FILLET8_START_2)):
        with BuildLine():
            Line((2, 3.64106736), (2, 4.5))
            Line((2, 4.5), (1.99, 4.5))
            Line((1.99, 4.5), (1.99, 3.5))
            ThreePointArc((1.99, 3.5), (1.992503133, 3.570710678), (2, 3.64106736))
        make_face()
    extrude(amount=FILLET8_2_DEPTH, mode=Mode.SUBTRACT)


solid = part.part
